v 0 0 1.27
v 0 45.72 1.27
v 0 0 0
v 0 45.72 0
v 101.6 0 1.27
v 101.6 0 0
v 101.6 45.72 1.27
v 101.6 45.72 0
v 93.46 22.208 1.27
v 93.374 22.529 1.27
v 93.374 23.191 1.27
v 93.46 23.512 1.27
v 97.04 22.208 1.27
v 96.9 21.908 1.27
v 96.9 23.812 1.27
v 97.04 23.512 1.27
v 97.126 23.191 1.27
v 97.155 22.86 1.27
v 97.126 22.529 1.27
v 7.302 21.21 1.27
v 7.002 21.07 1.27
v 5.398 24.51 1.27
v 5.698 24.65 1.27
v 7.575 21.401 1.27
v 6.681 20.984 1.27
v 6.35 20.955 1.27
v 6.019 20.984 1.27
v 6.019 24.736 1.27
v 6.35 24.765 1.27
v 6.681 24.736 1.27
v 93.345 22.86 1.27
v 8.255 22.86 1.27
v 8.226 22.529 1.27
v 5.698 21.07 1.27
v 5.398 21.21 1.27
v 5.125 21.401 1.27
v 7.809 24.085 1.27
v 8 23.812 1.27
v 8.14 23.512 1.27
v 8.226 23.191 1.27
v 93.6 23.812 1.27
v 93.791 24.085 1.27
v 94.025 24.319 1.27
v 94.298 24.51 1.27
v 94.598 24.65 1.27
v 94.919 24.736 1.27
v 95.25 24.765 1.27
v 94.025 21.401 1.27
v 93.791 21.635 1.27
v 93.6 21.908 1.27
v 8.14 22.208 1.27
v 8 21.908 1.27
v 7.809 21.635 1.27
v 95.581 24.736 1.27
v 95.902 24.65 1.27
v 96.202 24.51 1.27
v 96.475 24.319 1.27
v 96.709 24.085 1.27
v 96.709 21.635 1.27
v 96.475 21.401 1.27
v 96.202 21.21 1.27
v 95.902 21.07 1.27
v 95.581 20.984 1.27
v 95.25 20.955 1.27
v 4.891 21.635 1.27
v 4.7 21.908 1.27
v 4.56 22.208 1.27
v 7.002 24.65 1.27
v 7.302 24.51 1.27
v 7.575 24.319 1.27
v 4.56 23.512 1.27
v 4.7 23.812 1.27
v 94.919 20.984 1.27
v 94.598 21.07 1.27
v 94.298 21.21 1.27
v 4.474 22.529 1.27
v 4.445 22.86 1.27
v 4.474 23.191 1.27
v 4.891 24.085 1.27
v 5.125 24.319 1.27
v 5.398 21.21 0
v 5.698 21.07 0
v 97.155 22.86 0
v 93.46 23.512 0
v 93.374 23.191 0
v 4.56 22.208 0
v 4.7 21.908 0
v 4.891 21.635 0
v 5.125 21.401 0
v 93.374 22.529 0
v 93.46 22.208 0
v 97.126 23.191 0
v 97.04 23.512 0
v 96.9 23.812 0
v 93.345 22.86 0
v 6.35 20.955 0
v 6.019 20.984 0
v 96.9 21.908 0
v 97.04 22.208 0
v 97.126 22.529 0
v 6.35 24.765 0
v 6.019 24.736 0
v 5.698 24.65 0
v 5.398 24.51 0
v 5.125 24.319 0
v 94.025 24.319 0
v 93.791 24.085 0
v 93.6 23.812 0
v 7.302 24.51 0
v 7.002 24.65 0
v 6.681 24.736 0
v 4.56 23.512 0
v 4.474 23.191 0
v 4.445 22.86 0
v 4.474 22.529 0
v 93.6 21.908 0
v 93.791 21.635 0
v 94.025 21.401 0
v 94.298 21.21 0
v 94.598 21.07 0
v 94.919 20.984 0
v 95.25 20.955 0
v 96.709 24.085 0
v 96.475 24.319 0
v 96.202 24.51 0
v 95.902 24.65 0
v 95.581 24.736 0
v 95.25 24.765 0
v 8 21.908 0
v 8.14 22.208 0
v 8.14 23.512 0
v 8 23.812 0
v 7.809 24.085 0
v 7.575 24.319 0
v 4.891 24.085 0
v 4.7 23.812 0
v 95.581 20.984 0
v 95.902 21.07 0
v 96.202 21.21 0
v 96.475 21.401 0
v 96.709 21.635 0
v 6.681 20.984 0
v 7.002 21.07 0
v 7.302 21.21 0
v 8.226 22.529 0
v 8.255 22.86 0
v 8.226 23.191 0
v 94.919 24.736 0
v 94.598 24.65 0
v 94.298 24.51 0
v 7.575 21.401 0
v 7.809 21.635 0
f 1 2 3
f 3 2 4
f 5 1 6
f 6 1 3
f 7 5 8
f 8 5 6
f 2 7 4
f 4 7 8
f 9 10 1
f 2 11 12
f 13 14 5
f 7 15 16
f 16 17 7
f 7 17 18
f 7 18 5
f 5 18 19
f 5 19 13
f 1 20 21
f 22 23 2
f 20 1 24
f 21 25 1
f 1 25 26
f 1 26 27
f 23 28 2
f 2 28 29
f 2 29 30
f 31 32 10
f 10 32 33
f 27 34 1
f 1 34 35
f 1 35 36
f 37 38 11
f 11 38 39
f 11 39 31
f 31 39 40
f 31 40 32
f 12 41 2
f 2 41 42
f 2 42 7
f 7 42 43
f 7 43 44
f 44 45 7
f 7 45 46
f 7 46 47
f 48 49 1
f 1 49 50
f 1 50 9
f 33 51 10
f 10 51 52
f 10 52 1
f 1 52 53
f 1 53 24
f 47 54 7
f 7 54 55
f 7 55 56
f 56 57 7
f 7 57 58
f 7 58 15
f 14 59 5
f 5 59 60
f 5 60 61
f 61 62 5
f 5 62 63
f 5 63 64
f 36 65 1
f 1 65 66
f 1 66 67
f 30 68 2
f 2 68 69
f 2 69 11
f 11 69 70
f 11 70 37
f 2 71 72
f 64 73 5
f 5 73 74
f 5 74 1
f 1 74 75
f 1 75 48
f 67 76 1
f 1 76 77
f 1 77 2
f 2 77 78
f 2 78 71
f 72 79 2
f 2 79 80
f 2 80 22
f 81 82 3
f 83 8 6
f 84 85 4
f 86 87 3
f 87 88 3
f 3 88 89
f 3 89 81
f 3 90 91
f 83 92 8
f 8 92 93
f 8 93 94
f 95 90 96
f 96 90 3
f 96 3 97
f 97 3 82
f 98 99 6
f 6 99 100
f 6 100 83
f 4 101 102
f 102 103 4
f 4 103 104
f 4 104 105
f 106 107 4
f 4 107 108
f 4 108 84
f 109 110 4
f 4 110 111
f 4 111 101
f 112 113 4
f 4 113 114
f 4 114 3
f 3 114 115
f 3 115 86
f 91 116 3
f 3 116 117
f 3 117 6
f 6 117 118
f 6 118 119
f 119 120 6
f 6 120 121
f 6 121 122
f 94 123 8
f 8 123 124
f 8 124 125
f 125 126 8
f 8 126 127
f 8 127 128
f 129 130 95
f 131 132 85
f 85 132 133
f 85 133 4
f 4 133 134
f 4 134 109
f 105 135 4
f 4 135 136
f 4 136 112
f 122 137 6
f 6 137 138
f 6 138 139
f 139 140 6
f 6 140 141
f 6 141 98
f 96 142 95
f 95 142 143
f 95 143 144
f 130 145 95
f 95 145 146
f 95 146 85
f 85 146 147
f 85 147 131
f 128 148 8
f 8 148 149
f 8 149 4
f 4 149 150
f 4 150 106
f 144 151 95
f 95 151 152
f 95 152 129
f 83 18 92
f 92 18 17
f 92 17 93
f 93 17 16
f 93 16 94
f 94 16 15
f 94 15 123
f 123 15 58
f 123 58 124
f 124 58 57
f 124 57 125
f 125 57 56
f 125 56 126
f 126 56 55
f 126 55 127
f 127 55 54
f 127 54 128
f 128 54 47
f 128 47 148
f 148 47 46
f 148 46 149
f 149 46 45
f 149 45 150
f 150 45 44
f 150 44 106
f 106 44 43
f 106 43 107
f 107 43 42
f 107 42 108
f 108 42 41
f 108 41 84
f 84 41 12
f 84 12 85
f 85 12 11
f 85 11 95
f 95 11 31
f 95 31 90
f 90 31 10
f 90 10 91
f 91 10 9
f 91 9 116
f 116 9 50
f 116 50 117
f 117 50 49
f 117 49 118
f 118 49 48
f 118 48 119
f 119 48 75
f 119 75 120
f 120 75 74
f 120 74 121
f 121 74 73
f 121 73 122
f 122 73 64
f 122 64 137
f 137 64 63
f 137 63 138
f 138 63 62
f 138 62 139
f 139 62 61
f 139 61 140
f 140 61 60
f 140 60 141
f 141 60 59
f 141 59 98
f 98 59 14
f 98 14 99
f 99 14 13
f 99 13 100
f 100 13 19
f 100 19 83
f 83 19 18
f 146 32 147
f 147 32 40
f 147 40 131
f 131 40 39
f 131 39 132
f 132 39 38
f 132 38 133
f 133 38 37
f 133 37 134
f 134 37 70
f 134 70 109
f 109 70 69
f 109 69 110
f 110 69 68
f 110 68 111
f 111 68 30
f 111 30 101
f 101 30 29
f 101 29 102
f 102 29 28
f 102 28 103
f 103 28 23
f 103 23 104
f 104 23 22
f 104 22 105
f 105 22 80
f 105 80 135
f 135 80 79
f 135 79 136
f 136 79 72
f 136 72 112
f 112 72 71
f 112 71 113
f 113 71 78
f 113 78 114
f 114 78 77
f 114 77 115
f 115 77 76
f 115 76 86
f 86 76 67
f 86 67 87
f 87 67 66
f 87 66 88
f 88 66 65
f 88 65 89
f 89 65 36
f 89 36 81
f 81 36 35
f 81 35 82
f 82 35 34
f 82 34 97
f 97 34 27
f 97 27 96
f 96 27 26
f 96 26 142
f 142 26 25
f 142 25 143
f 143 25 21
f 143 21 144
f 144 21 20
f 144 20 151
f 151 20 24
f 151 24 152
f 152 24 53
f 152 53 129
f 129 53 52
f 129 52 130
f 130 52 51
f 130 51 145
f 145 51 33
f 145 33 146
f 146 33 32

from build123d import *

# Parameters (mm, degrees)
SKETCH1_W          = 101.6
SKETCH1_H          = 45.72
BASE_EXTRUDE_DEPTH = 1.27
HOLE_CUT_REACH     = 113.42
SKETCH2_R          = 1.905


with BuildPart() as part:
    # Sketch1 → Base Extrude (new body)
    with BuildSketch(Plane.XY):
        with Locations((50.8, 22.86)):
            Rectangle(SKETCH1_W, SKETCH1_H)
    extrude(amount=BASE_EXTRUDE_DEPTH)

    # Sketch2 → Hole Cut (cut, up to next)
    with BuildSketch(Plane.XY.offset(1.27), mode=Mode.PRIVATE) as hole_cut_sk1:
        with Locations((6.35, 22.86)):
            Circle(SKETCH2_R)
    hole_cut_tool1 = extrude(hole_cut_sk1.sketch, amount=-HOLE_CUT_REACH, mode=Mode.PRIVATE) & part.part
    # Sketch2 → Hole Cut (cut, up to next)
    with BuildSketch(Plane.XY.offset(1.27), mode=Mode.PRIVATE) as hole_cut_sk2:
        with Locations(Location((95.25, 22.86, 0), (0, 0, 180))):
            Circle(SKETCH2_R)
    hole_cut_tool2 = extrude(hole_cut_sk2.sketch, amount=-HOLE_CUT_REACH, mode=Mode.PRIVATE) & part.part
    add(hole_cut_tool1.solids().sort_by_distance((6.35, 22.86, 1.27))[0], mode=Mode.SUBTRACT)
    add(hole_cut_tool2.solids().sort_by_distance((95.25, 22.86, 1.27))[0], mode=Mode.SUBTRACT)


solid = part.part
